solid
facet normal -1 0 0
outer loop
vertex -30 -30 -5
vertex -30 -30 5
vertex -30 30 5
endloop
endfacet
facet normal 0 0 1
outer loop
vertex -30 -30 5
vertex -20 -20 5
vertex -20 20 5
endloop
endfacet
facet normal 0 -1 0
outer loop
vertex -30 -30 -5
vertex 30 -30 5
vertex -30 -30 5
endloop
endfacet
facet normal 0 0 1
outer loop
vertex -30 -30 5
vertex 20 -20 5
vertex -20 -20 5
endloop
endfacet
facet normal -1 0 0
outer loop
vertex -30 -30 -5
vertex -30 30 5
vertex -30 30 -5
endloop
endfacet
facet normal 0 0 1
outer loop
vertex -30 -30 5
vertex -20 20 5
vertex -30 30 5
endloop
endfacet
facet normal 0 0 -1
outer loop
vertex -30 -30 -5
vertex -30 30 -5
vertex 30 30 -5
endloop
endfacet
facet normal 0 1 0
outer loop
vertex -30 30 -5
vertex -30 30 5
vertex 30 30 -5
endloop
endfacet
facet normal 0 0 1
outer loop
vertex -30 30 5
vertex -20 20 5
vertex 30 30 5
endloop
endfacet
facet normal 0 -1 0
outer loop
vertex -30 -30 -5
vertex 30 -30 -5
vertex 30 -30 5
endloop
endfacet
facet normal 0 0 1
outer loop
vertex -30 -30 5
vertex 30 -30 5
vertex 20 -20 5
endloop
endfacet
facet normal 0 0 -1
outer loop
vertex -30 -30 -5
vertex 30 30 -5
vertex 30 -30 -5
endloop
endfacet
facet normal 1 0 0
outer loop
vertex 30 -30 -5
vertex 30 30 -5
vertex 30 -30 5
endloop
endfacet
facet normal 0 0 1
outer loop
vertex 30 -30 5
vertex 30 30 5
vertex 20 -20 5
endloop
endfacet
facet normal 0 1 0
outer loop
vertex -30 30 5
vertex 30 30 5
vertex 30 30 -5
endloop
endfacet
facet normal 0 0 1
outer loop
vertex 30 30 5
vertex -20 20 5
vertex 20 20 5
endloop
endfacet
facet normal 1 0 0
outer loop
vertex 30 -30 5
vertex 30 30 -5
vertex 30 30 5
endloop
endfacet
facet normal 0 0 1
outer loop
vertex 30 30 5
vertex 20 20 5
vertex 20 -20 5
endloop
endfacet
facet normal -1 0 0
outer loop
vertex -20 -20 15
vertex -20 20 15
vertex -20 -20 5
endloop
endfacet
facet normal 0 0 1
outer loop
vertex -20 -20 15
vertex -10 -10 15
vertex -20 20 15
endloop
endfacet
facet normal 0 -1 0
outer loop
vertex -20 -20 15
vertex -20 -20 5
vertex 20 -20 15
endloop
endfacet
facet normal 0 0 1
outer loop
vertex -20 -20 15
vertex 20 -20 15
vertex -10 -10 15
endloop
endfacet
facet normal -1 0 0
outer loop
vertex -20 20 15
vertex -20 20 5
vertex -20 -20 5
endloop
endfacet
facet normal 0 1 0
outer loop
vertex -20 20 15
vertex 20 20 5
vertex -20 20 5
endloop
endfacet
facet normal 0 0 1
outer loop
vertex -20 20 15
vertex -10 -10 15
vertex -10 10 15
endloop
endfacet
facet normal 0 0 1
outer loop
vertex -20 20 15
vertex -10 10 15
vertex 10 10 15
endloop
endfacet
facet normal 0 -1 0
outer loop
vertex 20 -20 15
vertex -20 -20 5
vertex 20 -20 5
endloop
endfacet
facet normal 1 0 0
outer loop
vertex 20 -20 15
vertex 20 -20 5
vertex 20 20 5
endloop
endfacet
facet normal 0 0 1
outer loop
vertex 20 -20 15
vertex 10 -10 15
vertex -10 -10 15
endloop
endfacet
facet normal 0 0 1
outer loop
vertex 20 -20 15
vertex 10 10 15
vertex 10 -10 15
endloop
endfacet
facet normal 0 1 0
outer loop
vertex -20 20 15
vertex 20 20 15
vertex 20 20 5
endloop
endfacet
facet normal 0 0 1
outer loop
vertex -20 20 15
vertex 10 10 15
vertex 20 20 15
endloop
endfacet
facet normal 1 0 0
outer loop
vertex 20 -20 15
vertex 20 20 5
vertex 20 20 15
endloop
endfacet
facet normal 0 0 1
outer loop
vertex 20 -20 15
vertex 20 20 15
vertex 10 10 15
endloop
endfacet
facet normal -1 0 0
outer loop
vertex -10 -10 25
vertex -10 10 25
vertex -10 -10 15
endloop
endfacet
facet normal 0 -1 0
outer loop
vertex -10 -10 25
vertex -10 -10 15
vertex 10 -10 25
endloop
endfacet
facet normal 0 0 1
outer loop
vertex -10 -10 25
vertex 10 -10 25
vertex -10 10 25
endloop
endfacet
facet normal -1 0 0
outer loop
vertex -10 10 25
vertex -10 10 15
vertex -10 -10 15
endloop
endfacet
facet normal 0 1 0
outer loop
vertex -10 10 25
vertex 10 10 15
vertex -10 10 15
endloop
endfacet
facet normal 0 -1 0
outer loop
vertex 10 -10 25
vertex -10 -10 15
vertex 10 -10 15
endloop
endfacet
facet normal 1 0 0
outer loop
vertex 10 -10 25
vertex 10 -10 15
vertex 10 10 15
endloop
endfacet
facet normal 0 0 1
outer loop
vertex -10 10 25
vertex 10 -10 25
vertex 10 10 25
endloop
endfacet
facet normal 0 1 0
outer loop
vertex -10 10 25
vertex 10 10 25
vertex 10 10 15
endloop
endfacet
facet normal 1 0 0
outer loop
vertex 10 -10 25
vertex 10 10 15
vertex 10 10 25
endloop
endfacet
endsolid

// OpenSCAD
// 底辺 60mm × 60mm × 高さ 10mm の板
cube([60, 60, 10], center = true);

// 40mm × 40mm × 高さ 10mm の板（高さ 10mm の位置に配置）
translate([0, 0, 10])
cube([40, 40, 10], center = true);

// 20mm × 20mm × 高さ 10mm の板（高さ 20mm の位置に配置）
translate([0, 0, 20])
cube([20, 20, 10], center = true);
